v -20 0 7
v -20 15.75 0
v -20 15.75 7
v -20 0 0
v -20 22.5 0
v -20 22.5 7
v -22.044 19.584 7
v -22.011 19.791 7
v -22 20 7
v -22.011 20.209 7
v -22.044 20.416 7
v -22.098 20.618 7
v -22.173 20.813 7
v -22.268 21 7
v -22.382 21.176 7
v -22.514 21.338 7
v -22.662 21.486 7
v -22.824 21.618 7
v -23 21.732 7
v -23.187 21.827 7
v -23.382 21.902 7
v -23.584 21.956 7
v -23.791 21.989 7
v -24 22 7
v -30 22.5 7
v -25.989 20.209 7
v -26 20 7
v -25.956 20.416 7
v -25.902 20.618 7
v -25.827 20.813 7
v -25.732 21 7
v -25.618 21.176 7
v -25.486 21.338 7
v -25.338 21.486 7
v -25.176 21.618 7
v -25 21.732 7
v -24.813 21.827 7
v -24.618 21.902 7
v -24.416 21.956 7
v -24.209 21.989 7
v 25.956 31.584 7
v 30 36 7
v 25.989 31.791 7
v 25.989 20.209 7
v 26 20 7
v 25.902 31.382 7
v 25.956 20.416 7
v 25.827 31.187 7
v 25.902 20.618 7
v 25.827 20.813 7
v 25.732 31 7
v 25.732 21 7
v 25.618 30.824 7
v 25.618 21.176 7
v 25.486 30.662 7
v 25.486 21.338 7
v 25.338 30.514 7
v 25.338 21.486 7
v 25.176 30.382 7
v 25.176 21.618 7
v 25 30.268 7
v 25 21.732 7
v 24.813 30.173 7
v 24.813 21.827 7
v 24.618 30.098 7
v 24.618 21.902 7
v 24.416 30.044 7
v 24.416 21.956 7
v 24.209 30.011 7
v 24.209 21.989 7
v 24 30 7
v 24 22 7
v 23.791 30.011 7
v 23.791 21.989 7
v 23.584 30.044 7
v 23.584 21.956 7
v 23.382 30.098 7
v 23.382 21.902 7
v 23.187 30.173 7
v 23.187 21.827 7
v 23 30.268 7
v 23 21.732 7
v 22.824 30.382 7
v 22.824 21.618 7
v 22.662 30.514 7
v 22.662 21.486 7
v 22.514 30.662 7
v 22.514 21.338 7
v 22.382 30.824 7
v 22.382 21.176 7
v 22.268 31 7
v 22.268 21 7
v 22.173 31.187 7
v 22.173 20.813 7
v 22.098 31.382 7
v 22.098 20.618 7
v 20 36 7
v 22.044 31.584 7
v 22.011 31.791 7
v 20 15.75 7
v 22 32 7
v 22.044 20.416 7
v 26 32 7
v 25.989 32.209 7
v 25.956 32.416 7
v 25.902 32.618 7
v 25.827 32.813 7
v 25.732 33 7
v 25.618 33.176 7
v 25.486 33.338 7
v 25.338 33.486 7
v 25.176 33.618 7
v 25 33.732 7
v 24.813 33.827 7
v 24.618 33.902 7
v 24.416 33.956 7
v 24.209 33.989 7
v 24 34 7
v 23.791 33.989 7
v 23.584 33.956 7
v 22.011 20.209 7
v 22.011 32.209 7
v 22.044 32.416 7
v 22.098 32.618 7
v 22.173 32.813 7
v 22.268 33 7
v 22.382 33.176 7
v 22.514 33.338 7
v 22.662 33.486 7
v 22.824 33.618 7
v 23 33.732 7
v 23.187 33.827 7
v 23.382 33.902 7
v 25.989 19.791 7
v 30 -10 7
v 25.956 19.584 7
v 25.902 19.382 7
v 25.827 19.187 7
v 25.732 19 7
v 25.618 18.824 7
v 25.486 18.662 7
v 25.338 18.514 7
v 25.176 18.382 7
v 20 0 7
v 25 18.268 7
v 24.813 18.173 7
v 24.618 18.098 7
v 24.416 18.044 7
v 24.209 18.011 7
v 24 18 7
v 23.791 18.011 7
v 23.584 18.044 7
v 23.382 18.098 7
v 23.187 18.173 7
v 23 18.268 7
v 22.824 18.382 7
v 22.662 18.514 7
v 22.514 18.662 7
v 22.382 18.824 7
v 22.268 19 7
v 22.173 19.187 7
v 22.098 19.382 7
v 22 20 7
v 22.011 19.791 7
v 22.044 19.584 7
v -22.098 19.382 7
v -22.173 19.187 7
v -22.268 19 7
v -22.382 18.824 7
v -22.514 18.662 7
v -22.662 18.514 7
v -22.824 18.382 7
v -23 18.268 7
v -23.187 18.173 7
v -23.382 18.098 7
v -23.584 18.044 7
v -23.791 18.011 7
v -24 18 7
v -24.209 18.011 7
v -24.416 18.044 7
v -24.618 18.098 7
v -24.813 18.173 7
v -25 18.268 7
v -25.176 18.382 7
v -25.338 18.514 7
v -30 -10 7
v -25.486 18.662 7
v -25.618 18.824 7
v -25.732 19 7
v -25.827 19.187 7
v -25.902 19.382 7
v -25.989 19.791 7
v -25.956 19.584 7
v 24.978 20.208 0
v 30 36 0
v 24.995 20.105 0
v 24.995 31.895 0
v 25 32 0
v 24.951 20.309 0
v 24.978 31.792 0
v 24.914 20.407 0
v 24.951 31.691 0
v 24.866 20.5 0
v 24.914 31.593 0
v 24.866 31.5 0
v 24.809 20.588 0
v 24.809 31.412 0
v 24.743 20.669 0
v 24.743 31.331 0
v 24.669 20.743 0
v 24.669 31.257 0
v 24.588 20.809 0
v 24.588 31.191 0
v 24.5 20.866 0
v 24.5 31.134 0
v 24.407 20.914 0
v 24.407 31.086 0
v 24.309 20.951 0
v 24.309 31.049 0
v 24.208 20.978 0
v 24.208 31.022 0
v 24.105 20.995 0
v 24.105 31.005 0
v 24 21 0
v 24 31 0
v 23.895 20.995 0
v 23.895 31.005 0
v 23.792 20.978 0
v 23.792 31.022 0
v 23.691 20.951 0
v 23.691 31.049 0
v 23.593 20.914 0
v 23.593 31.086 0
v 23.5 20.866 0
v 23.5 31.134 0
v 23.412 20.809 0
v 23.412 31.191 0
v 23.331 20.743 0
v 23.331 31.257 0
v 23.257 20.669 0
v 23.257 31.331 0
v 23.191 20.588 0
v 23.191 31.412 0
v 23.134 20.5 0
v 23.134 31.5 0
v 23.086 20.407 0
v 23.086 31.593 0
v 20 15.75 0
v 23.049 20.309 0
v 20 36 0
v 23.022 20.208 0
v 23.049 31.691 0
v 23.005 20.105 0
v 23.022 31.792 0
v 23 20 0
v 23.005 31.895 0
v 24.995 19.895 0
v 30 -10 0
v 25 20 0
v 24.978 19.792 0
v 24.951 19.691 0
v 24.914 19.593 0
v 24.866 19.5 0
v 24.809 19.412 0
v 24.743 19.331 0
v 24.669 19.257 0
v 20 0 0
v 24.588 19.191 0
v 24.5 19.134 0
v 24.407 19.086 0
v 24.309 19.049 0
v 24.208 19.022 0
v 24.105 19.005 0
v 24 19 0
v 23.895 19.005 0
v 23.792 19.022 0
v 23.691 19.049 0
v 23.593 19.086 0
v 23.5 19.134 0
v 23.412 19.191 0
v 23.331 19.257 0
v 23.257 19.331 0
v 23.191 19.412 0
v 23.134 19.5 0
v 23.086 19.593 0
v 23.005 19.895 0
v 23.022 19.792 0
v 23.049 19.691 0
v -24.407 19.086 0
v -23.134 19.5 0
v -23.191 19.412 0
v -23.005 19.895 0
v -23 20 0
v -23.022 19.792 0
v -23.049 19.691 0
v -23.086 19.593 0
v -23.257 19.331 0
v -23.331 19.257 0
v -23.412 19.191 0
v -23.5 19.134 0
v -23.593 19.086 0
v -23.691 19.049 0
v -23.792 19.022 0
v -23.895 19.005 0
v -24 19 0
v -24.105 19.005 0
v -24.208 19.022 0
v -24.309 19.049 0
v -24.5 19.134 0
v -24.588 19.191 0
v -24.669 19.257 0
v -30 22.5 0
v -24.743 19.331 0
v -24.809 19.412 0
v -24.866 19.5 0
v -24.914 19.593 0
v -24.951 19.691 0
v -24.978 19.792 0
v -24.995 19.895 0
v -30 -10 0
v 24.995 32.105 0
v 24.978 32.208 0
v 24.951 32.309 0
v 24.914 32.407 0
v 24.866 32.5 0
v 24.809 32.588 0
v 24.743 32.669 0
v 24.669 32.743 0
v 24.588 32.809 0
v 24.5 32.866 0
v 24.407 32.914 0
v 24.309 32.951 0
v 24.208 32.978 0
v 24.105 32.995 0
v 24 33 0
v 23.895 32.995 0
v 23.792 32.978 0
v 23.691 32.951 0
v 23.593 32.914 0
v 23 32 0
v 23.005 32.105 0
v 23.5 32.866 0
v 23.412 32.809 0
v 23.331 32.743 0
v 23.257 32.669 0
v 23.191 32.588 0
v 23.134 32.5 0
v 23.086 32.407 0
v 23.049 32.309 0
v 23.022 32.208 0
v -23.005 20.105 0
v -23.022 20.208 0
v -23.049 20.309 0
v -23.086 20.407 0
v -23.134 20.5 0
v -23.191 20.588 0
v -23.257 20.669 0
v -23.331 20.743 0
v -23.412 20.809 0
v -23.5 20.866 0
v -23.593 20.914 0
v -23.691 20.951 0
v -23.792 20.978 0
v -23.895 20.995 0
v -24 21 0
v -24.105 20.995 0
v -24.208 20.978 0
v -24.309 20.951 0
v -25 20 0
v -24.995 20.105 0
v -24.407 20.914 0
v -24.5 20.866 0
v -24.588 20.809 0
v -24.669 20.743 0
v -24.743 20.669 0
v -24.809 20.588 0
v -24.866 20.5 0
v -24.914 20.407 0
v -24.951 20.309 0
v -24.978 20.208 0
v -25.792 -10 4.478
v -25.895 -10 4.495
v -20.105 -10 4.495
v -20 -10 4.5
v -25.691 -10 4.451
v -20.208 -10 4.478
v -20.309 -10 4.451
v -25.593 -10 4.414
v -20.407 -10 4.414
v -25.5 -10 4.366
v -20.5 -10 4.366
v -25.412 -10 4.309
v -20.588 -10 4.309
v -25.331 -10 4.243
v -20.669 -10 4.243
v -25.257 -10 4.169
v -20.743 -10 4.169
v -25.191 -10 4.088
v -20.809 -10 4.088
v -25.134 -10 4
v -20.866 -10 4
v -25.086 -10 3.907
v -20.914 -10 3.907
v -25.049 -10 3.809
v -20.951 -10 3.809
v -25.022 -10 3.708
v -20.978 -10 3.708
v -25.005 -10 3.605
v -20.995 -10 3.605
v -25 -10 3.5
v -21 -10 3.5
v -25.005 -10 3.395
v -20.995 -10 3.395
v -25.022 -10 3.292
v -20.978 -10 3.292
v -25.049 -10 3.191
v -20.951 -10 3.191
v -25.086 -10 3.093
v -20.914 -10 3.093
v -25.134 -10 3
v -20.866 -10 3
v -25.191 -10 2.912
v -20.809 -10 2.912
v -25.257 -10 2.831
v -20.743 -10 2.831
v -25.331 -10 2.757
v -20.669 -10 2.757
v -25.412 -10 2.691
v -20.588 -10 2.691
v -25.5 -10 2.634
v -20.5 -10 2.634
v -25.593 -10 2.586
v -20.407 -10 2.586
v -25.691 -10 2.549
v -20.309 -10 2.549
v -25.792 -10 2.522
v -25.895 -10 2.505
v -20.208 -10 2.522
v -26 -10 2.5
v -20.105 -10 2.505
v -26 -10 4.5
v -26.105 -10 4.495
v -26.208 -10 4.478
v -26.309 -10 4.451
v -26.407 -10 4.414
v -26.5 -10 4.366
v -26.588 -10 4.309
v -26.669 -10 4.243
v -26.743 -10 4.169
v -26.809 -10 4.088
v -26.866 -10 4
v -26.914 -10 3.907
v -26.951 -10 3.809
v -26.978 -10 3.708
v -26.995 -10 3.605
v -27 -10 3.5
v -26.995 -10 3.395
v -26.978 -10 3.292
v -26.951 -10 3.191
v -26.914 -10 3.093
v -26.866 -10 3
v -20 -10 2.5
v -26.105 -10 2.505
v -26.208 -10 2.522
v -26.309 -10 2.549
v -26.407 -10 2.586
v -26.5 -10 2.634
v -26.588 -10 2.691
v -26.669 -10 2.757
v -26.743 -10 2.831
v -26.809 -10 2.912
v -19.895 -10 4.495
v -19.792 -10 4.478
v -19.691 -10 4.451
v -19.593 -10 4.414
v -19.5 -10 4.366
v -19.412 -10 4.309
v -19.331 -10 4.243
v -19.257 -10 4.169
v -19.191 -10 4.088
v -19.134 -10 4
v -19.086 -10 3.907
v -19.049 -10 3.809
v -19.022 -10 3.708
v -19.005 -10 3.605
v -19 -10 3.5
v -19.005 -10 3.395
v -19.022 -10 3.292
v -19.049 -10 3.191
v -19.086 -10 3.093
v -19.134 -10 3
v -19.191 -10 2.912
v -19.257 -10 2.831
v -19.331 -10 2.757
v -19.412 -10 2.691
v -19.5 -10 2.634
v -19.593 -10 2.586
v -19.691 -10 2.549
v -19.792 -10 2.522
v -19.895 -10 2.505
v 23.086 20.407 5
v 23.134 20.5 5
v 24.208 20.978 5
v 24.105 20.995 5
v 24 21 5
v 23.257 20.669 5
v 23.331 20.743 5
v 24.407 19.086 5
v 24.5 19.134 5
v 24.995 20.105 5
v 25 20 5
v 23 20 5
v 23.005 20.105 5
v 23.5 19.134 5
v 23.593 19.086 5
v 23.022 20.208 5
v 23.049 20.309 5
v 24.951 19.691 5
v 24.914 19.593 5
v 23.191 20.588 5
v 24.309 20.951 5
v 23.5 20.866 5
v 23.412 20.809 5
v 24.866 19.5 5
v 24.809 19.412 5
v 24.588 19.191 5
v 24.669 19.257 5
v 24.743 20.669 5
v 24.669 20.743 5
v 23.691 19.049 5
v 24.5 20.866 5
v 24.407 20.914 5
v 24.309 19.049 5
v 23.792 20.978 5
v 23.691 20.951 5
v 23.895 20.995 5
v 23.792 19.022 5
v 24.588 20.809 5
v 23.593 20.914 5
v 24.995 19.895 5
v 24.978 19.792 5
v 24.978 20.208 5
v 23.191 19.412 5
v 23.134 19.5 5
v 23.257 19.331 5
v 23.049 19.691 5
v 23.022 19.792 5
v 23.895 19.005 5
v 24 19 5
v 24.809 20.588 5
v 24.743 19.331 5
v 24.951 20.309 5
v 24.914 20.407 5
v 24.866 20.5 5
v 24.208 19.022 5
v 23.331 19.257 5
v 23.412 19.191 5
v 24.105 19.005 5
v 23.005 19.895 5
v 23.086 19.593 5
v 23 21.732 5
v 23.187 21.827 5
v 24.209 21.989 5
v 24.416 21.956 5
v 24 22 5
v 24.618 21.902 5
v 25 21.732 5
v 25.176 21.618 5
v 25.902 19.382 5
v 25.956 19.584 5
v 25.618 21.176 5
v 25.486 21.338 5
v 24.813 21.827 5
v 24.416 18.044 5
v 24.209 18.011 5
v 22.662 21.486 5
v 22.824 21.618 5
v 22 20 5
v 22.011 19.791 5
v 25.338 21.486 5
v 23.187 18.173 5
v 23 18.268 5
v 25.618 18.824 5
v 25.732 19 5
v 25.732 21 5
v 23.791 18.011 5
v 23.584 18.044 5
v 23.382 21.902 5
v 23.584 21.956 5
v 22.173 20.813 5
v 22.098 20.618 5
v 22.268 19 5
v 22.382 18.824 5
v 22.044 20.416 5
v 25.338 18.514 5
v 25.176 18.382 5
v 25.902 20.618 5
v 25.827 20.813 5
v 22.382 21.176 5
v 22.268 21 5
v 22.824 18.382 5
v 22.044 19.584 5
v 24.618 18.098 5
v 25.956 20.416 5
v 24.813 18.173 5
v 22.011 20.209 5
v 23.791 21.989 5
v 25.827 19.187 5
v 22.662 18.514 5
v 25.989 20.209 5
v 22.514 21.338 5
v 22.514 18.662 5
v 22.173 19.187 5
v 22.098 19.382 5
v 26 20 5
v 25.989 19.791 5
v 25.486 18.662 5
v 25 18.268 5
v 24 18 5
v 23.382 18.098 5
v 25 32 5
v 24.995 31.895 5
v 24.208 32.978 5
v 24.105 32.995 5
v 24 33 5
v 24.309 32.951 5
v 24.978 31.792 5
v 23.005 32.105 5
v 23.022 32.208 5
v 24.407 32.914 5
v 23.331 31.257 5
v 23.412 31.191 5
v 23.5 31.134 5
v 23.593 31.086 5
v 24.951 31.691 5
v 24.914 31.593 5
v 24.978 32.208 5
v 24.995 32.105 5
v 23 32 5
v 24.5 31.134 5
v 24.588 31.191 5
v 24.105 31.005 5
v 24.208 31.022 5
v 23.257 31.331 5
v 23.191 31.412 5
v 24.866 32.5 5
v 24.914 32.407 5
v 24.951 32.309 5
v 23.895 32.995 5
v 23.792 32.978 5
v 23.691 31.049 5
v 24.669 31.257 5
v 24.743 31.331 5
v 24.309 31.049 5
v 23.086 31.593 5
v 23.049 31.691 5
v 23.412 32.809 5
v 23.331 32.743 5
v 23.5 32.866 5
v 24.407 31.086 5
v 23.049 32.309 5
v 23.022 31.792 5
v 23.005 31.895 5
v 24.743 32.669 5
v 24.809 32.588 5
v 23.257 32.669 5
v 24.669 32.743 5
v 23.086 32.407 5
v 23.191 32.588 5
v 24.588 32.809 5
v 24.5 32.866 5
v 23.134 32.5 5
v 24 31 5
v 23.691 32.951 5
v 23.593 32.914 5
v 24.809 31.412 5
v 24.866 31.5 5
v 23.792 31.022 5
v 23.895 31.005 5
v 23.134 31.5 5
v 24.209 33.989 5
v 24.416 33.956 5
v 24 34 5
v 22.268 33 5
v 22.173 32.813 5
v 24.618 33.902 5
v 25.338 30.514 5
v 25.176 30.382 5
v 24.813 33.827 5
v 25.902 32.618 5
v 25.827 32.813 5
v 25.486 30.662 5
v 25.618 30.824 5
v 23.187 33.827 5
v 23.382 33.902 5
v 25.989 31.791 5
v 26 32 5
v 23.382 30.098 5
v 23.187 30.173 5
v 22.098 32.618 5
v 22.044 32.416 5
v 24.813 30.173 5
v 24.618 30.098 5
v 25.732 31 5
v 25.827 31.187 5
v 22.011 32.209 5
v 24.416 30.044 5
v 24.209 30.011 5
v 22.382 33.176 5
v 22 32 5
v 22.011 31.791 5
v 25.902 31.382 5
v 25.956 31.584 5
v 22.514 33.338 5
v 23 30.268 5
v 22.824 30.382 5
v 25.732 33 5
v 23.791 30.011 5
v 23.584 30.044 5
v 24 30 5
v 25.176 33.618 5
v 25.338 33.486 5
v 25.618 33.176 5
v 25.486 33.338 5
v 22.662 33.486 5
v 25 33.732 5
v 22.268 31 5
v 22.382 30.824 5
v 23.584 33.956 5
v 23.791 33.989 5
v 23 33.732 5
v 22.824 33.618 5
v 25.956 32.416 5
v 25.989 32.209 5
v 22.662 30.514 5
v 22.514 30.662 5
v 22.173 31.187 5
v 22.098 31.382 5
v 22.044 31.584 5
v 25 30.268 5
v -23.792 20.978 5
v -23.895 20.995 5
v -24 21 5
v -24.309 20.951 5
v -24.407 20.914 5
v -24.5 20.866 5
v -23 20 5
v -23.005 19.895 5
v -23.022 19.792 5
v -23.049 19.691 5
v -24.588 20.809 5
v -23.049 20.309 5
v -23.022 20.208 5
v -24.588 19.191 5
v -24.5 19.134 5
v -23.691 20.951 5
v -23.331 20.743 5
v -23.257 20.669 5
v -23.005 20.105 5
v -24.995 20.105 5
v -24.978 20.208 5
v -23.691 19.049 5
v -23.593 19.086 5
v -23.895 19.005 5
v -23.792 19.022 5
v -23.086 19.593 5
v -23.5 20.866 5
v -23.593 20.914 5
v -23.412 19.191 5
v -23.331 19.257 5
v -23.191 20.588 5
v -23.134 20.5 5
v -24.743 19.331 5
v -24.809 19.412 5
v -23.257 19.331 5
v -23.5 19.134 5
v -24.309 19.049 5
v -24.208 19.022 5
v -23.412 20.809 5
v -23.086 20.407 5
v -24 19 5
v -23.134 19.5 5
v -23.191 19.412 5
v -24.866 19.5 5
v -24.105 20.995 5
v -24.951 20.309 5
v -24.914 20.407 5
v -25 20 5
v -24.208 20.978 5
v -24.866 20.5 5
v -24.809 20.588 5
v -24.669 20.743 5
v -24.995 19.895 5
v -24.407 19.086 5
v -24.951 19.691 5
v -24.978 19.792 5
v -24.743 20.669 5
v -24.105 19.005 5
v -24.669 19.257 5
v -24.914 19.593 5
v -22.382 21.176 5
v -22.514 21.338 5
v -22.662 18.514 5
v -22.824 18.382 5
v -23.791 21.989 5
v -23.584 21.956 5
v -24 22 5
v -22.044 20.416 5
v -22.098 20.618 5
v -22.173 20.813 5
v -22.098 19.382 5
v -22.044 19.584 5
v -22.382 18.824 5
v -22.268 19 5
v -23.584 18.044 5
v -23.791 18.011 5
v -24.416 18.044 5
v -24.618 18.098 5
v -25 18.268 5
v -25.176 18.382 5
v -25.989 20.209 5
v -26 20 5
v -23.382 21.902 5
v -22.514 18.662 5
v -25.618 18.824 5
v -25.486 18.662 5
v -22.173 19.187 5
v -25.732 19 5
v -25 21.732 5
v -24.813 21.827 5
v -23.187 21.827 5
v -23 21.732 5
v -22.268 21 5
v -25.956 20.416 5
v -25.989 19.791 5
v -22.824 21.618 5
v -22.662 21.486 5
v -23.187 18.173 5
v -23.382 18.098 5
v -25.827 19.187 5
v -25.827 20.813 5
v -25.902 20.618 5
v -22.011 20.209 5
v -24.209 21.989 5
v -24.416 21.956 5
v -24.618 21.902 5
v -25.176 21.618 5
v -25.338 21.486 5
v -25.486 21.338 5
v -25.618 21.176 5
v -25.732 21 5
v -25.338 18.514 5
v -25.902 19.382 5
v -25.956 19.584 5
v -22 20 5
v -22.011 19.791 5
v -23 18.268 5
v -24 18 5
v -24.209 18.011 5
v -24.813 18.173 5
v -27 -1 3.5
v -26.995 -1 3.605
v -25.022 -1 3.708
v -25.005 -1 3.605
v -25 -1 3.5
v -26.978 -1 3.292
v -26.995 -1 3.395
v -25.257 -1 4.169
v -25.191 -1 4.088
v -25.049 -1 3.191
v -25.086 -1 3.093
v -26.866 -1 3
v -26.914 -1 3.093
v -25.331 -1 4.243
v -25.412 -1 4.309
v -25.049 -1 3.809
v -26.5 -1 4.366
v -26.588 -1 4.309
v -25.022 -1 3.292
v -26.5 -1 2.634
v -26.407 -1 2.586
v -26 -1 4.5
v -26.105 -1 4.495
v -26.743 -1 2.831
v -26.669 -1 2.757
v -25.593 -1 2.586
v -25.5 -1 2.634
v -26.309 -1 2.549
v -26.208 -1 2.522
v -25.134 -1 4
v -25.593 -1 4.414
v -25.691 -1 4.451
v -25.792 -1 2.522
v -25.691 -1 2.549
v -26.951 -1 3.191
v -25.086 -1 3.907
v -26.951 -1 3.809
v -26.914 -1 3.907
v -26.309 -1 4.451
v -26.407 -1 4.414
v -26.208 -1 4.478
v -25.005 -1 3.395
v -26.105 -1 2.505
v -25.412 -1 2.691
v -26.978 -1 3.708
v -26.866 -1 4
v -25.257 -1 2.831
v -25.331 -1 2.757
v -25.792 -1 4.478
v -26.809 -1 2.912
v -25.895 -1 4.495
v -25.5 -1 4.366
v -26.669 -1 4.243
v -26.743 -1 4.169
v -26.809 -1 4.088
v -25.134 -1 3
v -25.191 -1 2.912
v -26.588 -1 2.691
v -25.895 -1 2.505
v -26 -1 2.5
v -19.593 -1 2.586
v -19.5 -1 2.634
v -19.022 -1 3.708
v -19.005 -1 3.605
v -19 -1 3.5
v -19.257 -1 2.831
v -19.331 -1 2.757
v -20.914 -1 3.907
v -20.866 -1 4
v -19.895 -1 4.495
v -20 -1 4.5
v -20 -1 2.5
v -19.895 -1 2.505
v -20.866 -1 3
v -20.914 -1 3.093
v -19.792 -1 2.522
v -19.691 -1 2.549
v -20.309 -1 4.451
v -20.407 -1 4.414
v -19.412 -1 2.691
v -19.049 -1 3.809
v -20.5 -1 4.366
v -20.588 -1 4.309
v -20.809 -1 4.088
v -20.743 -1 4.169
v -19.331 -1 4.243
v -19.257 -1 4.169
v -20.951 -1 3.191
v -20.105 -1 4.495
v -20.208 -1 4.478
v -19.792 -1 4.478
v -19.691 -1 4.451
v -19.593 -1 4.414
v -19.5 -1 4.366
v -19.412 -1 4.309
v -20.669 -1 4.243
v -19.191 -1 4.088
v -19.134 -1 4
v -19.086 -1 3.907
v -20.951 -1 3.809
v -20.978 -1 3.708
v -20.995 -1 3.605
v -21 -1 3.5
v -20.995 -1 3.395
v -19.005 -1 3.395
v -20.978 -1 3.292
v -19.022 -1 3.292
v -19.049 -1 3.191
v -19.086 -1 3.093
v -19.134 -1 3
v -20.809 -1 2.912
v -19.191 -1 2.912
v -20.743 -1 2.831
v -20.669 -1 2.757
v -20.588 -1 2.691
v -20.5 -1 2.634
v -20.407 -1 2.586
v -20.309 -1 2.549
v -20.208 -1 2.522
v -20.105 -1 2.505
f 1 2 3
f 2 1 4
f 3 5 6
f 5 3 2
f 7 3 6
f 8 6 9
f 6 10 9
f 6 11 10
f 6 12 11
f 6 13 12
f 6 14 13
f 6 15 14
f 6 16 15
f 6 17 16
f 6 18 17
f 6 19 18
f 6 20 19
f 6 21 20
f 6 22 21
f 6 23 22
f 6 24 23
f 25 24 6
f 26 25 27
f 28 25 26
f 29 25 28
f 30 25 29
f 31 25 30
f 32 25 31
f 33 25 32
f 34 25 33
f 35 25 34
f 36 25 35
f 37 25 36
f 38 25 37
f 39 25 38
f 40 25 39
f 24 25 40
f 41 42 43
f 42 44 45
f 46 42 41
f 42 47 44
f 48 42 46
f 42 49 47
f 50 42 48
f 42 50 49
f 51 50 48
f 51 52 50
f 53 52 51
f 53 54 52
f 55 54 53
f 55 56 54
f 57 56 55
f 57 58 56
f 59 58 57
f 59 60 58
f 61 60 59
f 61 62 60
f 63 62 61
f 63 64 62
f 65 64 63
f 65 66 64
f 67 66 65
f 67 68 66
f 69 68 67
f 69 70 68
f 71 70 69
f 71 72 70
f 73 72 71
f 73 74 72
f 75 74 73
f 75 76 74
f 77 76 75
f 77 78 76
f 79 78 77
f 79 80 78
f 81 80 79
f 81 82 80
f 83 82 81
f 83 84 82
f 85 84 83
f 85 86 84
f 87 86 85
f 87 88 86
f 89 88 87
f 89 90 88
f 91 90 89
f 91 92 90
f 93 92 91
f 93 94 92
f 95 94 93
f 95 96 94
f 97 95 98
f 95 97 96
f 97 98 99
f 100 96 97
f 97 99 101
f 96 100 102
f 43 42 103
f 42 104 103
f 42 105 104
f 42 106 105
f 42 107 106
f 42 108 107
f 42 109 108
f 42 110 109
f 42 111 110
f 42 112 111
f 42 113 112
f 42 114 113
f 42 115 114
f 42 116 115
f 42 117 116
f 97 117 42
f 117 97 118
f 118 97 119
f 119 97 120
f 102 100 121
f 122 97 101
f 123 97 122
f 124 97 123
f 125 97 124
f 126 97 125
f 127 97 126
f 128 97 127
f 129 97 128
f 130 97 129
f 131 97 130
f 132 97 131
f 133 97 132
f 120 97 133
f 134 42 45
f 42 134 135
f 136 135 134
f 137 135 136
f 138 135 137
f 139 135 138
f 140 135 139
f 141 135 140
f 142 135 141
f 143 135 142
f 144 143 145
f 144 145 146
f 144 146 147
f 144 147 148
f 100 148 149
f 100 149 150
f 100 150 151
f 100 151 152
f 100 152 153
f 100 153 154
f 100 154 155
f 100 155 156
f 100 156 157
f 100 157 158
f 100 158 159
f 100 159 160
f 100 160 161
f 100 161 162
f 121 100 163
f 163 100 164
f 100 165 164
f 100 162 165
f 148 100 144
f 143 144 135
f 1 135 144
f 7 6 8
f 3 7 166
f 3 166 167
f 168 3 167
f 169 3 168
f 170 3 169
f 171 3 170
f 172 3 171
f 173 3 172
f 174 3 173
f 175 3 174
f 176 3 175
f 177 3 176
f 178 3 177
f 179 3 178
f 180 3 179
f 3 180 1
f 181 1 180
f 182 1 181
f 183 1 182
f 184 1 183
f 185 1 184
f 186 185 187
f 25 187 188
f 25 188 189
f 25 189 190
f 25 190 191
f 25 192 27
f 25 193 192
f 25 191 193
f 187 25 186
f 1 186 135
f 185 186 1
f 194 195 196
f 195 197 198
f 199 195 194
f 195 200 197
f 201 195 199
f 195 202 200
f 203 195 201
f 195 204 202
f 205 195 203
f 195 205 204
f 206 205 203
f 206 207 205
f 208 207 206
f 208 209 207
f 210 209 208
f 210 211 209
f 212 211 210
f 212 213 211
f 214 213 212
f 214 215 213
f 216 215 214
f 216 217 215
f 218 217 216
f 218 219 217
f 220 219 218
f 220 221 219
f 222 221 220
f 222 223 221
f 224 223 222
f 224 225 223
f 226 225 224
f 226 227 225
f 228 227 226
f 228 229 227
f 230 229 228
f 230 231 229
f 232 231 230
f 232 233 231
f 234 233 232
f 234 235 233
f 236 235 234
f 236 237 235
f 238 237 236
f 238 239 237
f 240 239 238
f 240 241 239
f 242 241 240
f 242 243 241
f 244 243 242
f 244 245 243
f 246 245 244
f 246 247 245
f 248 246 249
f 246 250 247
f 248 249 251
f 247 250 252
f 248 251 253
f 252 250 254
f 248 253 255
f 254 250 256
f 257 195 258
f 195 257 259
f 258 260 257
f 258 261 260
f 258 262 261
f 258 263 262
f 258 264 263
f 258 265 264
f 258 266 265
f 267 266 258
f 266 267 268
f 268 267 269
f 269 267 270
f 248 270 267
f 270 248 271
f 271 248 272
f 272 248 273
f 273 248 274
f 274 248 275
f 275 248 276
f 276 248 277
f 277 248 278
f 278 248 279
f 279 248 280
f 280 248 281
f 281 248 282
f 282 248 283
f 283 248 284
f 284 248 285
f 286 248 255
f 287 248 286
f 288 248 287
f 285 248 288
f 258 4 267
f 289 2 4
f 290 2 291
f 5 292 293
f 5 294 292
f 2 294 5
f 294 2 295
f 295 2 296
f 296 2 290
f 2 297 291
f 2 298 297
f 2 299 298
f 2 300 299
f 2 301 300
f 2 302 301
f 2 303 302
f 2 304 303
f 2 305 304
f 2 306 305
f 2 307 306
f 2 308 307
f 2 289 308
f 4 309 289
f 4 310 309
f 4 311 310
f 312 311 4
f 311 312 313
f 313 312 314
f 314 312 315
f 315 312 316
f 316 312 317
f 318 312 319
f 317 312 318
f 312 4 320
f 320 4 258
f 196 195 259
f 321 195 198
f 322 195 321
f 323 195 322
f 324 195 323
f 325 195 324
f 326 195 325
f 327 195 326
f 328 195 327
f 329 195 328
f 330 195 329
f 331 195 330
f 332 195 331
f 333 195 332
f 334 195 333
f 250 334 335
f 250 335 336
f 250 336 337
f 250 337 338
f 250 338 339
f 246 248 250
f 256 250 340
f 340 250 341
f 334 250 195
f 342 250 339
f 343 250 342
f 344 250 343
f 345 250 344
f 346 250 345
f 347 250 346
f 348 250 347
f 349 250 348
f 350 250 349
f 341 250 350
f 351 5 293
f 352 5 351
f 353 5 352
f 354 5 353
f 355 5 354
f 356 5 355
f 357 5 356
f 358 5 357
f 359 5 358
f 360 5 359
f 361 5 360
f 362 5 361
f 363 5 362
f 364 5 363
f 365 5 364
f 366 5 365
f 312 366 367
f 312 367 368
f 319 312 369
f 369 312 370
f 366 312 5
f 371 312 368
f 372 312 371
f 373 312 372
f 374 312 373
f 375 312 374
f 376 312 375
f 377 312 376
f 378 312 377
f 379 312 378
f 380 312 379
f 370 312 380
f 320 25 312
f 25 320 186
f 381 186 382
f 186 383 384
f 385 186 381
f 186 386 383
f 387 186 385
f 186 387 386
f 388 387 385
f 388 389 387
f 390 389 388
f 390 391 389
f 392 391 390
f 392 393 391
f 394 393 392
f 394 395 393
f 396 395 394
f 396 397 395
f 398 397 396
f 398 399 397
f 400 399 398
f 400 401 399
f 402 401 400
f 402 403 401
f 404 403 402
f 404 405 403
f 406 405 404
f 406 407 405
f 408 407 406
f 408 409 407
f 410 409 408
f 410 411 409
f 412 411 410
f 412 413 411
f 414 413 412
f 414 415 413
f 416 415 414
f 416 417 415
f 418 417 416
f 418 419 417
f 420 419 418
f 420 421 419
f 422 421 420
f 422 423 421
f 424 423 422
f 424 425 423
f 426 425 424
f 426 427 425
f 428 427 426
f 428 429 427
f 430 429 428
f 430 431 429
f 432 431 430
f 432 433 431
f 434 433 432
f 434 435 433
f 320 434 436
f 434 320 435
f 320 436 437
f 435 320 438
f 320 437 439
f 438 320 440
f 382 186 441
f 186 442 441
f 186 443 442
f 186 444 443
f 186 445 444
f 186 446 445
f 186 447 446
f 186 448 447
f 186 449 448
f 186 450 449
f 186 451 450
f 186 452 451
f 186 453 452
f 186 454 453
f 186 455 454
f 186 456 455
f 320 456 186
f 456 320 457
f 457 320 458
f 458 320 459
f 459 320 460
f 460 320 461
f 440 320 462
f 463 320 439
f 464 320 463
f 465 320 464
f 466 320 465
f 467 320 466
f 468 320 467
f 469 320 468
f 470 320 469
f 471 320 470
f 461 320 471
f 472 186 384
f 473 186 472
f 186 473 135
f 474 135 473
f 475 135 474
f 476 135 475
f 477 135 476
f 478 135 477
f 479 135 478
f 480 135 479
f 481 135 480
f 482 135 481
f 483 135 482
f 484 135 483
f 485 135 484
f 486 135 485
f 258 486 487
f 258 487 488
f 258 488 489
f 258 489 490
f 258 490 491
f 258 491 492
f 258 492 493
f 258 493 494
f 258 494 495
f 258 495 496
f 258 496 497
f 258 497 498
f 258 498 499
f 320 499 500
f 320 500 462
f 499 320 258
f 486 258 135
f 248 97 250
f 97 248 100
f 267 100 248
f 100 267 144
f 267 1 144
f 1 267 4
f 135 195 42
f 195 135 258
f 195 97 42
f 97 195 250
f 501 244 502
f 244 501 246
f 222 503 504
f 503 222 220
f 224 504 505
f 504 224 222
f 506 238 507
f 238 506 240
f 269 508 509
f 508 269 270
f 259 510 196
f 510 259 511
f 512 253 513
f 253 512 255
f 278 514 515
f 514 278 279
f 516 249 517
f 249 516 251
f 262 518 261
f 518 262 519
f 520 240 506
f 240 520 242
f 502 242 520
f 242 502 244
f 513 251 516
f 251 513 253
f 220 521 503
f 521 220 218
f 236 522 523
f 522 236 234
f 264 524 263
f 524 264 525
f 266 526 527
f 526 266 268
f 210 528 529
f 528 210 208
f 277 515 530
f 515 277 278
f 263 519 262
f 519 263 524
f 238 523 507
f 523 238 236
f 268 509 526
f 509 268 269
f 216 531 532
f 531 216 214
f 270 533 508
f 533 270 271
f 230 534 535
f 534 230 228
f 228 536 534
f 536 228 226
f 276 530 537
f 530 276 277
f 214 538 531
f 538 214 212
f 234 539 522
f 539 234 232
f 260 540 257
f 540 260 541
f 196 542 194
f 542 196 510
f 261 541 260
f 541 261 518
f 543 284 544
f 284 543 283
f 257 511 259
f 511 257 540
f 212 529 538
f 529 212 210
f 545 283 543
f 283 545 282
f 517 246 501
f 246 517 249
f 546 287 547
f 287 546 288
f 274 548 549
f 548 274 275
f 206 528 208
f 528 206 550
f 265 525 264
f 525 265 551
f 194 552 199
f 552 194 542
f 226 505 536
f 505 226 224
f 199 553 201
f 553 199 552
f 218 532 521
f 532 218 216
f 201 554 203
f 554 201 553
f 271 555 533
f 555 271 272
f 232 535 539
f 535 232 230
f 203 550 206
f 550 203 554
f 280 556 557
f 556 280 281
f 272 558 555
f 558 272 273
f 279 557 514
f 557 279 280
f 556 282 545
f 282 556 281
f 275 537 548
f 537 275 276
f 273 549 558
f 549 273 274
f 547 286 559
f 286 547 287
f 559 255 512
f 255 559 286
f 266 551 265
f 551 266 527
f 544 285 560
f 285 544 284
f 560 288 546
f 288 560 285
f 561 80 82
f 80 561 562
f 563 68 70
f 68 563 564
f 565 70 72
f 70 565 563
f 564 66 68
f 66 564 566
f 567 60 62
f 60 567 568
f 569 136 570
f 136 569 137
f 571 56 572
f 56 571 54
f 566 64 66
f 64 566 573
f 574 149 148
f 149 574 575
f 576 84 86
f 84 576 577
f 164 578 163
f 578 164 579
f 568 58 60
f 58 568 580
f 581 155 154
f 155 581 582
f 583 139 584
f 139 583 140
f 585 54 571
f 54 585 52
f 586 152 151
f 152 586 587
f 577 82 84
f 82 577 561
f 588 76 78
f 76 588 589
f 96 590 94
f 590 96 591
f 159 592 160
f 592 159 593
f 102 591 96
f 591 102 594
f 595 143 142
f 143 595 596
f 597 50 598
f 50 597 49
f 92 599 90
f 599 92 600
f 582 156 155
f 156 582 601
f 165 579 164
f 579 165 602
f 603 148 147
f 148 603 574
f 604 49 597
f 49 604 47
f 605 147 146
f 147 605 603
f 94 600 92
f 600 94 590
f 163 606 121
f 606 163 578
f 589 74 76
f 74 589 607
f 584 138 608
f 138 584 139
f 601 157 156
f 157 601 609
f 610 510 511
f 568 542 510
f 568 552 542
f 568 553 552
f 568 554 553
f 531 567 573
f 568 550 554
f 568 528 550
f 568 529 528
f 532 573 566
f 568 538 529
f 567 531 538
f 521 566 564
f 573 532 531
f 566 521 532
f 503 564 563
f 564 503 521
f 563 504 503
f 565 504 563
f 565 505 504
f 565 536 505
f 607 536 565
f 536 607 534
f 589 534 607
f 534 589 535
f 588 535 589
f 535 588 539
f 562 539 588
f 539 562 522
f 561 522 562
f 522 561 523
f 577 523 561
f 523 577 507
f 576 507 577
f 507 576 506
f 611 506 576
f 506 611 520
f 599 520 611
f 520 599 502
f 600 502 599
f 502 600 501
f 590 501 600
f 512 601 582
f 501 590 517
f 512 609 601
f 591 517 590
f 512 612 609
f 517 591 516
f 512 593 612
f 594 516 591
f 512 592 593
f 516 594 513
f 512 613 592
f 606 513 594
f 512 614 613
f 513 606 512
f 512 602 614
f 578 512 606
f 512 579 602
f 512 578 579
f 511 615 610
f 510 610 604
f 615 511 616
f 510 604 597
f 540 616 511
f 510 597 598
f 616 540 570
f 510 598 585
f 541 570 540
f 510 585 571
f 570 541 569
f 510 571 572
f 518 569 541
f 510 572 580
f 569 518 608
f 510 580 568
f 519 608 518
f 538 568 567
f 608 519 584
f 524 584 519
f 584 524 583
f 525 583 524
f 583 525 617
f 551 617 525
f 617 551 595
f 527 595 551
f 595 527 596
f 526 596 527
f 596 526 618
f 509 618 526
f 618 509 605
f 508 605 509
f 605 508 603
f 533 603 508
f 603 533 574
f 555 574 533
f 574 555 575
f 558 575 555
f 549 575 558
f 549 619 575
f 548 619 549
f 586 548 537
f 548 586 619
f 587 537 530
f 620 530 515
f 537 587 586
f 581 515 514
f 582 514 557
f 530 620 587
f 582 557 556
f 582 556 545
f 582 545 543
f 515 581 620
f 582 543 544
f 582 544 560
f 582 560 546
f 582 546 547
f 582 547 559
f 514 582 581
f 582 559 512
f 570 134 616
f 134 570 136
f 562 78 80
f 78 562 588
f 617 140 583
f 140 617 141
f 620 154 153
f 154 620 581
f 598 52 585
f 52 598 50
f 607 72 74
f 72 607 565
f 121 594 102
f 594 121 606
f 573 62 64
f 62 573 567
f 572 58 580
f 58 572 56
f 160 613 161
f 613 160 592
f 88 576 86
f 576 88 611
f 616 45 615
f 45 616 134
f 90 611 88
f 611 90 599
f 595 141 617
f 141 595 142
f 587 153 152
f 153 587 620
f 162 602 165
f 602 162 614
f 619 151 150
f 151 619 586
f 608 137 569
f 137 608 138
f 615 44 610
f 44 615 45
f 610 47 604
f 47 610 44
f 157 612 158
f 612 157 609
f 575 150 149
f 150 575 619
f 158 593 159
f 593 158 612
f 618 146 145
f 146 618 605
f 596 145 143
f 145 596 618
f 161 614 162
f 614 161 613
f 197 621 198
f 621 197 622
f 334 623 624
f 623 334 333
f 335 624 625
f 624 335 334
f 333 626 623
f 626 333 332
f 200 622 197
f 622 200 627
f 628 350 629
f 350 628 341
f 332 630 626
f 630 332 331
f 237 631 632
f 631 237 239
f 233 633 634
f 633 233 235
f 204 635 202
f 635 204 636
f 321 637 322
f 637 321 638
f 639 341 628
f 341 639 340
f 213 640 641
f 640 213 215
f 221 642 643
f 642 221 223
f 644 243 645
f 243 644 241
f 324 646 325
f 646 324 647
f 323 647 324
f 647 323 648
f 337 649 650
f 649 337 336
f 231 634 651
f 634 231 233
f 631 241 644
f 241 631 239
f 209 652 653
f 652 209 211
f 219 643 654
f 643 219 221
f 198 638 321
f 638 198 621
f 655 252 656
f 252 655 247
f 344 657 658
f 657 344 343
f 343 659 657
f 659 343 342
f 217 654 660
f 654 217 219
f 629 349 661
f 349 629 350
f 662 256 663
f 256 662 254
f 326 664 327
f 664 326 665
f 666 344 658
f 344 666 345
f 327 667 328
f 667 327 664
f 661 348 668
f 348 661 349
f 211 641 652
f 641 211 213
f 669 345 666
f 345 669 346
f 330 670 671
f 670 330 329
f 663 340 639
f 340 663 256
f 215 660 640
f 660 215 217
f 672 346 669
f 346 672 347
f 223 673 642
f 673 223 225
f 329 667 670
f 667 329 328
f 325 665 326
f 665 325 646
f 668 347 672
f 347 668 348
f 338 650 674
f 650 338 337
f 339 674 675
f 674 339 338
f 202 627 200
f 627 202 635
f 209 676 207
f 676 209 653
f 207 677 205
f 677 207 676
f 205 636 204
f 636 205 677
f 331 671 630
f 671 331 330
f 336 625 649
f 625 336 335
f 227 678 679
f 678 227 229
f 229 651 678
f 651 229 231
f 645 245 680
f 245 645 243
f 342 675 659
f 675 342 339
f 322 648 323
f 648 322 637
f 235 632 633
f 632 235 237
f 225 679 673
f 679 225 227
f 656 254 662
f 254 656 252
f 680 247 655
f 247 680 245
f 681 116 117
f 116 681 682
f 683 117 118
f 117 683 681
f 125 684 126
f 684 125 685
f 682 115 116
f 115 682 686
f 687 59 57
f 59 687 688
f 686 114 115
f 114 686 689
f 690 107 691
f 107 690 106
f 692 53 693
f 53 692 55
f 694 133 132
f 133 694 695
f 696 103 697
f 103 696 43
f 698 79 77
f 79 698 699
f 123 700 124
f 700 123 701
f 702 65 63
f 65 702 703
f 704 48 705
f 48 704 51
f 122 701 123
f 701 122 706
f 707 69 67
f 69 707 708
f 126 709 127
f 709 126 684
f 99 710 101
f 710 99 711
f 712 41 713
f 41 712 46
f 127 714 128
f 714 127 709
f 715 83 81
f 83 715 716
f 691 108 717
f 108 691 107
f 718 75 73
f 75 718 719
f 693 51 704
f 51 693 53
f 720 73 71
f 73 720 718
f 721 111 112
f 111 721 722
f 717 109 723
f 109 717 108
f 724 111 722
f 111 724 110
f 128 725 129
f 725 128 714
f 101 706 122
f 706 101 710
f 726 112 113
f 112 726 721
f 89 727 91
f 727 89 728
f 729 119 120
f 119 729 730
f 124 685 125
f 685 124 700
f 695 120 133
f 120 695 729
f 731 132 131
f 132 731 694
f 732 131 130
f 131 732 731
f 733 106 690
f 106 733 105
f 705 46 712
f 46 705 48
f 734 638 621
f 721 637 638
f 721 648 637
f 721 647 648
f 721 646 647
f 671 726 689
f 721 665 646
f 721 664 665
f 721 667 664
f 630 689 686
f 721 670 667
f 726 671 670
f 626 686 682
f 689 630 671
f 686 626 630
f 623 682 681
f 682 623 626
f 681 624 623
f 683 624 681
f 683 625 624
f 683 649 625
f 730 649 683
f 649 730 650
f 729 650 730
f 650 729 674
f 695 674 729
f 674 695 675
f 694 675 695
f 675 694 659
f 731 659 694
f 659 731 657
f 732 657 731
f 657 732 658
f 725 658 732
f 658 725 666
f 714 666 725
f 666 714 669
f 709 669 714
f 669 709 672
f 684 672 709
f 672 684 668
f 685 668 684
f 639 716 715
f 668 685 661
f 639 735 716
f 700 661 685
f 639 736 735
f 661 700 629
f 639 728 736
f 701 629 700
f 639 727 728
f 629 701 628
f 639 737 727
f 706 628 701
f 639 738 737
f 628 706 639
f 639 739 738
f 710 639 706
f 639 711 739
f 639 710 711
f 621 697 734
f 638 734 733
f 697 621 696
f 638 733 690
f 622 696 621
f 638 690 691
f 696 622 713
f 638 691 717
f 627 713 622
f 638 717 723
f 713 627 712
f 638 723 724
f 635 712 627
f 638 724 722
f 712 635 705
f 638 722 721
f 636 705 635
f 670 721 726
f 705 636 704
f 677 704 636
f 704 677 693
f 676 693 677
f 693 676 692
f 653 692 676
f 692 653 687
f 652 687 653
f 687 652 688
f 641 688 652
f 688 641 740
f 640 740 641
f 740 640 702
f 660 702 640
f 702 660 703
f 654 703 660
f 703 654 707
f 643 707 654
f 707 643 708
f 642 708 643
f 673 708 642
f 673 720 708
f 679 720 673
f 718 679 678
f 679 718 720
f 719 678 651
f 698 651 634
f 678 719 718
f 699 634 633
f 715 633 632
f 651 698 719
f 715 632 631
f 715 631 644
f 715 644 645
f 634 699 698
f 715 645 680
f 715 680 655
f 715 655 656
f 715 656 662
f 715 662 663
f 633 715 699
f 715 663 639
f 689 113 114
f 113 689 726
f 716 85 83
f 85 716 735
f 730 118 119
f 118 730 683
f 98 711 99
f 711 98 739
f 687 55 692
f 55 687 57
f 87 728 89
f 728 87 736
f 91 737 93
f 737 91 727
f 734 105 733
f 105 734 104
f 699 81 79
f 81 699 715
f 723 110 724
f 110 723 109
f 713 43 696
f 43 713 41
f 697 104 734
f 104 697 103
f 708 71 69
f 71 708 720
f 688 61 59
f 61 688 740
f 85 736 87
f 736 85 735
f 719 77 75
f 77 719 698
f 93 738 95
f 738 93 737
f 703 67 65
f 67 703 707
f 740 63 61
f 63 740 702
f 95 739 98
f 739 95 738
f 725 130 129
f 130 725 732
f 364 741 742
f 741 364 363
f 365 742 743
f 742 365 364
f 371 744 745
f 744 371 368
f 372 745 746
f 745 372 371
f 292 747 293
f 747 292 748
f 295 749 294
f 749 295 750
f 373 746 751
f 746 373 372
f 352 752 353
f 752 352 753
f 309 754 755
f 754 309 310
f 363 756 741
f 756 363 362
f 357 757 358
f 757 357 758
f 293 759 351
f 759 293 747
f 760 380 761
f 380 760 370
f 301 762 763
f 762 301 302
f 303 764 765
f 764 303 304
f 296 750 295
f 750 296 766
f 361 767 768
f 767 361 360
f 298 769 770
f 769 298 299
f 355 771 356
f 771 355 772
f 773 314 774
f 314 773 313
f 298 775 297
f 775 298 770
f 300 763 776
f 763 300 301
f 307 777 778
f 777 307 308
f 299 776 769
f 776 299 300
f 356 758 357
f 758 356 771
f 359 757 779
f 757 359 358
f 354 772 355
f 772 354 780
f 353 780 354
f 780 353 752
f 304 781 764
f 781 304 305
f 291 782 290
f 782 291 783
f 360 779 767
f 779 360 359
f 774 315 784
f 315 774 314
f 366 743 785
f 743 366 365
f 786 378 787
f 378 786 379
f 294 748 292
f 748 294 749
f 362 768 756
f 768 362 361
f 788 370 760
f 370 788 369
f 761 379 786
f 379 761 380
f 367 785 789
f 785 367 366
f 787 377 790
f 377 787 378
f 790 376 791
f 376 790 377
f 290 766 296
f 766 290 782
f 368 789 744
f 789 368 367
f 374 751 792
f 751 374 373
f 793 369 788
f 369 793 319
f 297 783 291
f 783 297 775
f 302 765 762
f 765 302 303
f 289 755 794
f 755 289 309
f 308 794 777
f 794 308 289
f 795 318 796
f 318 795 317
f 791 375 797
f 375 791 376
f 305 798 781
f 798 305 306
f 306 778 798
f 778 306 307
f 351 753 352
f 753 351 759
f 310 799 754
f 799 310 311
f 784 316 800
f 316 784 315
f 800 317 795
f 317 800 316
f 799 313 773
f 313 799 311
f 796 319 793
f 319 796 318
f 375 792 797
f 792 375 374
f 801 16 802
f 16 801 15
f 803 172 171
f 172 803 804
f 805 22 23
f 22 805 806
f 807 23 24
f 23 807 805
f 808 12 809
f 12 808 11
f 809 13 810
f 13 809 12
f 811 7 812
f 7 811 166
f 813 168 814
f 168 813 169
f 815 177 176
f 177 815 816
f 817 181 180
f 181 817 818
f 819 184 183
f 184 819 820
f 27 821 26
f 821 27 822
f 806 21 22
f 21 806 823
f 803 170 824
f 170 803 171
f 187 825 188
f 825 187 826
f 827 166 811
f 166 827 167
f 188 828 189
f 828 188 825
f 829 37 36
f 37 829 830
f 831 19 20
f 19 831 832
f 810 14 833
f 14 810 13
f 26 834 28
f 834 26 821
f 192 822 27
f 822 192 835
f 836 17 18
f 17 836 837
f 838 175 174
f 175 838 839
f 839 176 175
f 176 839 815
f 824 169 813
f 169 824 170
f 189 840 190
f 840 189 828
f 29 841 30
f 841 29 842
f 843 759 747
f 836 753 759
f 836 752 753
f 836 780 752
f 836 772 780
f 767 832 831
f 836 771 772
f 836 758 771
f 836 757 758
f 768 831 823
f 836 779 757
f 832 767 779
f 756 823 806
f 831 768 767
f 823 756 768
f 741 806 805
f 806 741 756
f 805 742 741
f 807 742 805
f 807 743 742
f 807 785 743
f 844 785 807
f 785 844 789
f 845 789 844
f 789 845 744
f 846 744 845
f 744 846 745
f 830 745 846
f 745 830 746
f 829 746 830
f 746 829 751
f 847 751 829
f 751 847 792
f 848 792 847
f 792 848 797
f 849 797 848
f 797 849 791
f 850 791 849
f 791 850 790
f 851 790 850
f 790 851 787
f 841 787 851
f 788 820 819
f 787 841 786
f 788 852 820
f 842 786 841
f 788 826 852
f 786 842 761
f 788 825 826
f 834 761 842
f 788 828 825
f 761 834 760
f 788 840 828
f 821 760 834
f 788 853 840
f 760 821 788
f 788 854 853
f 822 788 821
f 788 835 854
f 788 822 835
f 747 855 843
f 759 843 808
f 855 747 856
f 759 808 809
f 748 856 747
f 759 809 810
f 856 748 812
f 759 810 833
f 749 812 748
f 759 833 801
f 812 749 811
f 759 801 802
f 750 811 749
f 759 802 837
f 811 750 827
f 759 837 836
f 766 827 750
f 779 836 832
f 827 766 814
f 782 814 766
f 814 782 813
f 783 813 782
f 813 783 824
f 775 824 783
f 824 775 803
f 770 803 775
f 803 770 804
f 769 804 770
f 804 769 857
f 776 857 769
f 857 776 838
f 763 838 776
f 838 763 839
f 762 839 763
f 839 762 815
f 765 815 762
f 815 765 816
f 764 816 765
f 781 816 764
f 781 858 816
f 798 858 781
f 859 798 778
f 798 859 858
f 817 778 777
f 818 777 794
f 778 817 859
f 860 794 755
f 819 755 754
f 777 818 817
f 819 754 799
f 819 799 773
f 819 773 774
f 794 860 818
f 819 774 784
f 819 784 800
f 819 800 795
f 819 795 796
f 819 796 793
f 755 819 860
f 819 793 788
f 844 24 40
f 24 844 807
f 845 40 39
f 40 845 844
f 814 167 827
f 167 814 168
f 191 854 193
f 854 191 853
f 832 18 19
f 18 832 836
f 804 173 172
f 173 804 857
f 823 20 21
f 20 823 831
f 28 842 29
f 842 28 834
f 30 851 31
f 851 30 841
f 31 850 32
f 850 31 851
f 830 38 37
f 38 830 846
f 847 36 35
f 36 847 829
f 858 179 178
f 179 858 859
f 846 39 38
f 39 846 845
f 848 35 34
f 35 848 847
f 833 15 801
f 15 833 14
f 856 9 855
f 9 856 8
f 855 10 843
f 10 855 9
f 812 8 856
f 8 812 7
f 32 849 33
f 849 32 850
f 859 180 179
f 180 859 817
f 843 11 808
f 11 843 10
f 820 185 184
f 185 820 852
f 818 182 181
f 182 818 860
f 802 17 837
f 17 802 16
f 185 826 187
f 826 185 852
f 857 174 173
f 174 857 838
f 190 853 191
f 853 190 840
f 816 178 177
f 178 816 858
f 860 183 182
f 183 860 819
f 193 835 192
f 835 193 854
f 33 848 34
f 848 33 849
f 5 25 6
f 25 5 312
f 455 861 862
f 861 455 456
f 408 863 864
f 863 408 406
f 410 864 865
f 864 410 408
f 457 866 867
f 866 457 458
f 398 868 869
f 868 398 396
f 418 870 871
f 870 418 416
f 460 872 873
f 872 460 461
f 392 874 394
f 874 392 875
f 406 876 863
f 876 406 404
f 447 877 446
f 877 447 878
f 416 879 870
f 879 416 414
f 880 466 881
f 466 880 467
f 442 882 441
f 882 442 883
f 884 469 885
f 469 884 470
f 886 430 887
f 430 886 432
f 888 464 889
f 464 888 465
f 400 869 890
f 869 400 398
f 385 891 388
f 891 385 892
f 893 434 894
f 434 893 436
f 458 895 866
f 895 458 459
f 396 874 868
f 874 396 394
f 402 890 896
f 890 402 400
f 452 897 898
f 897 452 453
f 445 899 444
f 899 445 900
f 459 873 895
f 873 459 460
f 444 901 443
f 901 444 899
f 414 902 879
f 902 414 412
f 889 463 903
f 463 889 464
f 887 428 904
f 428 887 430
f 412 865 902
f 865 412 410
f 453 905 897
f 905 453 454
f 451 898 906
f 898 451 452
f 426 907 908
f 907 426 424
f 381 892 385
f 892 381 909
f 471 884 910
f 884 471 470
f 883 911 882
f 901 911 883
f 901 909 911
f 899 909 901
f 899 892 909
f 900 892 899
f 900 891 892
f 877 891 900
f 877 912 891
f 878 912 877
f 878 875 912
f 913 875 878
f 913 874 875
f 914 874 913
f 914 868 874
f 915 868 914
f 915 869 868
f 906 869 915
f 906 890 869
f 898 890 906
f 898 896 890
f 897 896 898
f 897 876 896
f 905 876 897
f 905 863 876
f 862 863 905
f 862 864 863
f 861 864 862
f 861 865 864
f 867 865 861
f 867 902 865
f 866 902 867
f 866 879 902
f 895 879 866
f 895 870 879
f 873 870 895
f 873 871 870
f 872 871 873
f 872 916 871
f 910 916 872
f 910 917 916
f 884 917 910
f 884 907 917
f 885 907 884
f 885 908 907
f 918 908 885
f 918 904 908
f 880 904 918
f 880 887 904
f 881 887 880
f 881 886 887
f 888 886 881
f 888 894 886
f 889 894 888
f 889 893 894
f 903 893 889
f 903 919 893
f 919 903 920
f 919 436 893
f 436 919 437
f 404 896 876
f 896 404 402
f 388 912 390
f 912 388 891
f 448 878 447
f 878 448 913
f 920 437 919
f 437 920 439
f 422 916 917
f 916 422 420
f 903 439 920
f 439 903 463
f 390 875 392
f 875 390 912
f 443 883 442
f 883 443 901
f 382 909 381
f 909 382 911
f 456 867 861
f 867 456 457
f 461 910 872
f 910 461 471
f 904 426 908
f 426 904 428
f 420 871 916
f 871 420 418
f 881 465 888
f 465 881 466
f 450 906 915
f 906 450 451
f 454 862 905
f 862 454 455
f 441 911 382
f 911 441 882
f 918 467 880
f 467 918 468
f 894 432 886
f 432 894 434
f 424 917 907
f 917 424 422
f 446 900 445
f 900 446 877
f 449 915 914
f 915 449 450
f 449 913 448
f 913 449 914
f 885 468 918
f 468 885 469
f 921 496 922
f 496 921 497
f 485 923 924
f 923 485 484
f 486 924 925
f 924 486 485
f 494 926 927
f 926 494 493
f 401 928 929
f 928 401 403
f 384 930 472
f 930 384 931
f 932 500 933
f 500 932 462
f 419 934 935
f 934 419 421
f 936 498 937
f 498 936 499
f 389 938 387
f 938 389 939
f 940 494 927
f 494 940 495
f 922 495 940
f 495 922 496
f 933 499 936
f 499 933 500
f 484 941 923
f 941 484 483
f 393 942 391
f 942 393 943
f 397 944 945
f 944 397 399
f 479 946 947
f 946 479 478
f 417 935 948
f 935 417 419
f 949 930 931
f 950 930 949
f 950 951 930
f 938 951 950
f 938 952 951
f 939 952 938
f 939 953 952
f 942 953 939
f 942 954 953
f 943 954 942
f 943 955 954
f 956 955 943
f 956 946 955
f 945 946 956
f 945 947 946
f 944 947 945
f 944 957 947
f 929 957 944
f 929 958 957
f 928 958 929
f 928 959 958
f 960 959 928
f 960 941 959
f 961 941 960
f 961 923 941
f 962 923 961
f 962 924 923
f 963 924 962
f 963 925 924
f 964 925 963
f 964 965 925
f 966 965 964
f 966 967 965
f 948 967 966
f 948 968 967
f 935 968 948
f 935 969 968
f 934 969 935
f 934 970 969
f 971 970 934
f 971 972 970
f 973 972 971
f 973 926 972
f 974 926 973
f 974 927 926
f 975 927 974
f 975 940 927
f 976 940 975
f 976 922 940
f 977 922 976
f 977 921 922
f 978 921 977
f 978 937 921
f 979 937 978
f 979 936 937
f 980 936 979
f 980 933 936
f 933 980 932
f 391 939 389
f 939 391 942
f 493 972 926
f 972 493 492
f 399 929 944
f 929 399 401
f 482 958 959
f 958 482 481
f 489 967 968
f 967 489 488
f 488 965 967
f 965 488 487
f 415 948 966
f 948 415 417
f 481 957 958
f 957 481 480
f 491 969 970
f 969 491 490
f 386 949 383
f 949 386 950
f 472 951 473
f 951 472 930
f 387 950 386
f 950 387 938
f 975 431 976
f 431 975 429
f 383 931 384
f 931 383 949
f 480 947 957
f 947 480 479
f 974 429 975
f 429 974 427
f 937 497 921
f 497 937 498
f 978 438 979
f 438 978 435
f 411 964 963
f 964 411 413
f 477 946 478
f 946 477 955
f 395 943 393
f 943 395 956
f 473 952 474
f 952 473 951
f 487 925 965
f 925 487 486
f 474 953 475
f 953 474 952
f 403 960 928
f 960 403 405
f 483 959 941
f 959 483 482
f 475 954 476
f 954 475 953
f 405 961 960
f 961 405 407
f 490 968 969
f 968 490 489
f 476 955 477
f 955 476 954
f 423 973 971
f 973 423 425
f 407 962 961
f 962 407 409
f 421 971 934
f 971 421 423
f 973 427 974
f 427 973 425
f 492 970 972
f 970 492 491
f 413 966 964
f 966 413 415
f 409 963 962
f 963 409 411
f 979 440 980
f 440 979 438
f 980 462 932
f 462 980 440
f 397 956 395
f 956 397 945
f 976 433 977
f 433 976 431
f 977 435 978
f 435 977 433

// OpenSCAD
// file: bottle_adapter.scad
$fn=60;
bottle_r = 53/2;

holder_thickness = 5;

servo_y = 12;
servo_x = 20;
servo_z = 40;


// servo insert test
//difference(){
//    
//    bottle_adapter();
//
//    translate([15,-50,0])
//    cube([50,100,100]);
//
//    translate([-80,-50,0])
//    cube([100,50,100]);
//
//    translate([-65,-50,0])
//    cube([50,100,100]);
//}

bottle_adapter();

module bottle_adapter(){
    adapter_h = 120;
    insert_padding = 0.1;
    butane_channel_r = 10;
    butane_channel_h = 20;
    
    flat_surface_width = 50;
    
    servo_rotor_depth = 20;
    cap_depth = 8;
    
    servo_cutout_r = 56/2;
    
    hook_insert = 10;
    
    lighter_assembly_servo = [servo_x+40, servo_y-2, servo_z+20];

    difference(){
        union(){
        hull(){
            // butane servo
            translate([0,
                       bottle_r + holder_thickness + insert_padding,
                       adapter_h/2
                     ])
            rotate([0,0,90])
            cube([holder_thickness,
                  flat_surface_width,
                  adapter_h],
                center=true);

            cylinder(r=bottle_r + holder_thickness, h=adapter_h/2);
        }
            translate([bottle_r -25,
               -bottle_r/3 - servo_y *1.88,
               0
             ]){
        difference(){
            cube(lighter_assembly_servo);
    
            translate([(lighter_assembly_servo[0])/2 + 15,
                        lighter_assembly_servo[1]/1.3,
                        lighter_assembly_servo[2]/6])
            servo_insert();
        }
    }
    }
        
        cylinder(r=bottle_r + insert_padding, h=200);
        
        // servo insert
        translate([0,
                   bottle_r + holder_thickness,
                   adapter_h - servo_z - 10
                 ])
        servo_insert();
        
        translate([0,
                   bottle_r-2,
                   adapter_h - servo_cutout_r+10])
        rotate([90,0,0])
        cylinder(r=servo_cutout_r, h=20);
        
        translate([0,0,hook_insert])
        cube([100, hook_insert,hook_insert],center=true);
    }
}

module servo_insert(){
    offset = 7;
    
    screw_r = 2/2;
    normal_screw_r = 4/2;
    z_offset = 2;
    
    insert_padding = 0.5;
    insert_thickess = 20;
    
    holder_spacing_from_center = 4 + normal_screw_r;
    
    translate([0,0,servo_z/2])
    cube([insert_thickess + insert_padding,
          insert_thickess + insert_padding,
          servo_z],center=true);
    
    // top holes
    color("gold")
    translate([-holder_spacing_from_center,
               0,
               servo_z + z_offset + normal_screw_r
             ])
    rotate([90,0,0])
    cylinder(r=screw_r, h=insert_thickess, center=true);
    
    color("red")
    translate([-holder_spacing_from_center,
               insert_thickess/4,
               servo_z + z_offset + normal_screw_r
             ])
    rotate([90,0,0])
    cylinder(r=normal_screw_r, h=insert_thickess/2, center=true);
    
    color("gold")
    translate([holder_spacing_from_center,
               0,
               servo_z + z_offset + normal_screw_r
             ])
    rotate([90,0,0])
    cylinder(r=screw_r, h=insert_thickess, center=true);
    
    color("red")
    translate([holder_spacing_from_center,
               insert_thickess/4,
               servo_z + z_offset + normal_screw_r
             ])
    rotate([90,0,0])
    cylinder(r=normal_screw_r, h=insert_thickess/2, center=true);
    
    // bottom holes
    color("gold")
    translate([-holder_spacing_from_center,
               0,
               -z_offset - normal_screw_r
             ])
    rotate([90,0,0])
    cylinder(r=screw_r, h=insert_thickess, center=true);
    
    color("red")
    translate([-holder_spacing_from_center,
               insert_thickess/4,
               -z_offset - normal_screw_r
             ])
    rotate([90,0,0])
    cylinder(r=normal_screw_r, h=insert_thickess/2, center=true);
    
    color("gold")
    translate([holder_spacing_from_center,
               0,
               -z_offset - normal_screw_r
             ])
    rotate([90,0,0])
    cylinder(r=screw_r, h=insert_thickess, center=true);
    
    color("red")
    translate([holder_spacing_from_center,
               insert_thickess/4,
               -z_offset - normal_screw_r
             ])
    rotate([90,0,0])
    cylinder(r=normal_screw_r, h=insert_thickess/2, center=true);
}
// main file
use <bottle_adapter.scad>

$fn=60;

ligther_y = 16;

assembly_x = 40;
assembly_y = 36;

width = 10;
z = 7;

servo_cable_channel_x = 10;
servo_cable_channel_y = 14;
servo_cable_channel_z = 5;

servo_y = 12;
servo_x = 20;
servo_z = 40;

screw_insert_depth = 2;

servo_attachment_dist = 6;
servo_attachment_offset = 4;
screw_r = 2/2;


difference(){
    union(){
    // left - top view
    translate([-assembly_x/2 - width,-width,0])
    cube([width,assembly_y + width,z]);

    // top - top view
    translate([-assembly_x/2,-width,0])
    cube([assembly_x,width,z]);

    // right - top view
    translate([assembly_x/2,-width,0])
    cube([width,assembly_y + width,z]);
    }
    
    // servo
    color("gold")
    translate([-assembly_x/2,
               ligther_y + width,
               z-screw_insert_depth
             ])
    rotate([90,0,90])
    servo_insert();
    
    //servo cable cutout
    translate([-servo_x - servo_cable_channel_x,22.5,0])
    color("gold")
    cube([servo_cable_channel_x,servo_cable_channel_y,z]);
    
    color("red")
translate([-assembly_x/2 - width + servo_attachment_offset,-1,z/2])
rotate([90,0,0])
cylinder(r=screw_r,h=width-1);

color("red")
translate([-assembly_x/2 - width + servo_attachment_offset + servo_attachment_dist,-1,z/2])
rotate([90,0,0])
cylinder(r=screw_r,h=width-1);

}
